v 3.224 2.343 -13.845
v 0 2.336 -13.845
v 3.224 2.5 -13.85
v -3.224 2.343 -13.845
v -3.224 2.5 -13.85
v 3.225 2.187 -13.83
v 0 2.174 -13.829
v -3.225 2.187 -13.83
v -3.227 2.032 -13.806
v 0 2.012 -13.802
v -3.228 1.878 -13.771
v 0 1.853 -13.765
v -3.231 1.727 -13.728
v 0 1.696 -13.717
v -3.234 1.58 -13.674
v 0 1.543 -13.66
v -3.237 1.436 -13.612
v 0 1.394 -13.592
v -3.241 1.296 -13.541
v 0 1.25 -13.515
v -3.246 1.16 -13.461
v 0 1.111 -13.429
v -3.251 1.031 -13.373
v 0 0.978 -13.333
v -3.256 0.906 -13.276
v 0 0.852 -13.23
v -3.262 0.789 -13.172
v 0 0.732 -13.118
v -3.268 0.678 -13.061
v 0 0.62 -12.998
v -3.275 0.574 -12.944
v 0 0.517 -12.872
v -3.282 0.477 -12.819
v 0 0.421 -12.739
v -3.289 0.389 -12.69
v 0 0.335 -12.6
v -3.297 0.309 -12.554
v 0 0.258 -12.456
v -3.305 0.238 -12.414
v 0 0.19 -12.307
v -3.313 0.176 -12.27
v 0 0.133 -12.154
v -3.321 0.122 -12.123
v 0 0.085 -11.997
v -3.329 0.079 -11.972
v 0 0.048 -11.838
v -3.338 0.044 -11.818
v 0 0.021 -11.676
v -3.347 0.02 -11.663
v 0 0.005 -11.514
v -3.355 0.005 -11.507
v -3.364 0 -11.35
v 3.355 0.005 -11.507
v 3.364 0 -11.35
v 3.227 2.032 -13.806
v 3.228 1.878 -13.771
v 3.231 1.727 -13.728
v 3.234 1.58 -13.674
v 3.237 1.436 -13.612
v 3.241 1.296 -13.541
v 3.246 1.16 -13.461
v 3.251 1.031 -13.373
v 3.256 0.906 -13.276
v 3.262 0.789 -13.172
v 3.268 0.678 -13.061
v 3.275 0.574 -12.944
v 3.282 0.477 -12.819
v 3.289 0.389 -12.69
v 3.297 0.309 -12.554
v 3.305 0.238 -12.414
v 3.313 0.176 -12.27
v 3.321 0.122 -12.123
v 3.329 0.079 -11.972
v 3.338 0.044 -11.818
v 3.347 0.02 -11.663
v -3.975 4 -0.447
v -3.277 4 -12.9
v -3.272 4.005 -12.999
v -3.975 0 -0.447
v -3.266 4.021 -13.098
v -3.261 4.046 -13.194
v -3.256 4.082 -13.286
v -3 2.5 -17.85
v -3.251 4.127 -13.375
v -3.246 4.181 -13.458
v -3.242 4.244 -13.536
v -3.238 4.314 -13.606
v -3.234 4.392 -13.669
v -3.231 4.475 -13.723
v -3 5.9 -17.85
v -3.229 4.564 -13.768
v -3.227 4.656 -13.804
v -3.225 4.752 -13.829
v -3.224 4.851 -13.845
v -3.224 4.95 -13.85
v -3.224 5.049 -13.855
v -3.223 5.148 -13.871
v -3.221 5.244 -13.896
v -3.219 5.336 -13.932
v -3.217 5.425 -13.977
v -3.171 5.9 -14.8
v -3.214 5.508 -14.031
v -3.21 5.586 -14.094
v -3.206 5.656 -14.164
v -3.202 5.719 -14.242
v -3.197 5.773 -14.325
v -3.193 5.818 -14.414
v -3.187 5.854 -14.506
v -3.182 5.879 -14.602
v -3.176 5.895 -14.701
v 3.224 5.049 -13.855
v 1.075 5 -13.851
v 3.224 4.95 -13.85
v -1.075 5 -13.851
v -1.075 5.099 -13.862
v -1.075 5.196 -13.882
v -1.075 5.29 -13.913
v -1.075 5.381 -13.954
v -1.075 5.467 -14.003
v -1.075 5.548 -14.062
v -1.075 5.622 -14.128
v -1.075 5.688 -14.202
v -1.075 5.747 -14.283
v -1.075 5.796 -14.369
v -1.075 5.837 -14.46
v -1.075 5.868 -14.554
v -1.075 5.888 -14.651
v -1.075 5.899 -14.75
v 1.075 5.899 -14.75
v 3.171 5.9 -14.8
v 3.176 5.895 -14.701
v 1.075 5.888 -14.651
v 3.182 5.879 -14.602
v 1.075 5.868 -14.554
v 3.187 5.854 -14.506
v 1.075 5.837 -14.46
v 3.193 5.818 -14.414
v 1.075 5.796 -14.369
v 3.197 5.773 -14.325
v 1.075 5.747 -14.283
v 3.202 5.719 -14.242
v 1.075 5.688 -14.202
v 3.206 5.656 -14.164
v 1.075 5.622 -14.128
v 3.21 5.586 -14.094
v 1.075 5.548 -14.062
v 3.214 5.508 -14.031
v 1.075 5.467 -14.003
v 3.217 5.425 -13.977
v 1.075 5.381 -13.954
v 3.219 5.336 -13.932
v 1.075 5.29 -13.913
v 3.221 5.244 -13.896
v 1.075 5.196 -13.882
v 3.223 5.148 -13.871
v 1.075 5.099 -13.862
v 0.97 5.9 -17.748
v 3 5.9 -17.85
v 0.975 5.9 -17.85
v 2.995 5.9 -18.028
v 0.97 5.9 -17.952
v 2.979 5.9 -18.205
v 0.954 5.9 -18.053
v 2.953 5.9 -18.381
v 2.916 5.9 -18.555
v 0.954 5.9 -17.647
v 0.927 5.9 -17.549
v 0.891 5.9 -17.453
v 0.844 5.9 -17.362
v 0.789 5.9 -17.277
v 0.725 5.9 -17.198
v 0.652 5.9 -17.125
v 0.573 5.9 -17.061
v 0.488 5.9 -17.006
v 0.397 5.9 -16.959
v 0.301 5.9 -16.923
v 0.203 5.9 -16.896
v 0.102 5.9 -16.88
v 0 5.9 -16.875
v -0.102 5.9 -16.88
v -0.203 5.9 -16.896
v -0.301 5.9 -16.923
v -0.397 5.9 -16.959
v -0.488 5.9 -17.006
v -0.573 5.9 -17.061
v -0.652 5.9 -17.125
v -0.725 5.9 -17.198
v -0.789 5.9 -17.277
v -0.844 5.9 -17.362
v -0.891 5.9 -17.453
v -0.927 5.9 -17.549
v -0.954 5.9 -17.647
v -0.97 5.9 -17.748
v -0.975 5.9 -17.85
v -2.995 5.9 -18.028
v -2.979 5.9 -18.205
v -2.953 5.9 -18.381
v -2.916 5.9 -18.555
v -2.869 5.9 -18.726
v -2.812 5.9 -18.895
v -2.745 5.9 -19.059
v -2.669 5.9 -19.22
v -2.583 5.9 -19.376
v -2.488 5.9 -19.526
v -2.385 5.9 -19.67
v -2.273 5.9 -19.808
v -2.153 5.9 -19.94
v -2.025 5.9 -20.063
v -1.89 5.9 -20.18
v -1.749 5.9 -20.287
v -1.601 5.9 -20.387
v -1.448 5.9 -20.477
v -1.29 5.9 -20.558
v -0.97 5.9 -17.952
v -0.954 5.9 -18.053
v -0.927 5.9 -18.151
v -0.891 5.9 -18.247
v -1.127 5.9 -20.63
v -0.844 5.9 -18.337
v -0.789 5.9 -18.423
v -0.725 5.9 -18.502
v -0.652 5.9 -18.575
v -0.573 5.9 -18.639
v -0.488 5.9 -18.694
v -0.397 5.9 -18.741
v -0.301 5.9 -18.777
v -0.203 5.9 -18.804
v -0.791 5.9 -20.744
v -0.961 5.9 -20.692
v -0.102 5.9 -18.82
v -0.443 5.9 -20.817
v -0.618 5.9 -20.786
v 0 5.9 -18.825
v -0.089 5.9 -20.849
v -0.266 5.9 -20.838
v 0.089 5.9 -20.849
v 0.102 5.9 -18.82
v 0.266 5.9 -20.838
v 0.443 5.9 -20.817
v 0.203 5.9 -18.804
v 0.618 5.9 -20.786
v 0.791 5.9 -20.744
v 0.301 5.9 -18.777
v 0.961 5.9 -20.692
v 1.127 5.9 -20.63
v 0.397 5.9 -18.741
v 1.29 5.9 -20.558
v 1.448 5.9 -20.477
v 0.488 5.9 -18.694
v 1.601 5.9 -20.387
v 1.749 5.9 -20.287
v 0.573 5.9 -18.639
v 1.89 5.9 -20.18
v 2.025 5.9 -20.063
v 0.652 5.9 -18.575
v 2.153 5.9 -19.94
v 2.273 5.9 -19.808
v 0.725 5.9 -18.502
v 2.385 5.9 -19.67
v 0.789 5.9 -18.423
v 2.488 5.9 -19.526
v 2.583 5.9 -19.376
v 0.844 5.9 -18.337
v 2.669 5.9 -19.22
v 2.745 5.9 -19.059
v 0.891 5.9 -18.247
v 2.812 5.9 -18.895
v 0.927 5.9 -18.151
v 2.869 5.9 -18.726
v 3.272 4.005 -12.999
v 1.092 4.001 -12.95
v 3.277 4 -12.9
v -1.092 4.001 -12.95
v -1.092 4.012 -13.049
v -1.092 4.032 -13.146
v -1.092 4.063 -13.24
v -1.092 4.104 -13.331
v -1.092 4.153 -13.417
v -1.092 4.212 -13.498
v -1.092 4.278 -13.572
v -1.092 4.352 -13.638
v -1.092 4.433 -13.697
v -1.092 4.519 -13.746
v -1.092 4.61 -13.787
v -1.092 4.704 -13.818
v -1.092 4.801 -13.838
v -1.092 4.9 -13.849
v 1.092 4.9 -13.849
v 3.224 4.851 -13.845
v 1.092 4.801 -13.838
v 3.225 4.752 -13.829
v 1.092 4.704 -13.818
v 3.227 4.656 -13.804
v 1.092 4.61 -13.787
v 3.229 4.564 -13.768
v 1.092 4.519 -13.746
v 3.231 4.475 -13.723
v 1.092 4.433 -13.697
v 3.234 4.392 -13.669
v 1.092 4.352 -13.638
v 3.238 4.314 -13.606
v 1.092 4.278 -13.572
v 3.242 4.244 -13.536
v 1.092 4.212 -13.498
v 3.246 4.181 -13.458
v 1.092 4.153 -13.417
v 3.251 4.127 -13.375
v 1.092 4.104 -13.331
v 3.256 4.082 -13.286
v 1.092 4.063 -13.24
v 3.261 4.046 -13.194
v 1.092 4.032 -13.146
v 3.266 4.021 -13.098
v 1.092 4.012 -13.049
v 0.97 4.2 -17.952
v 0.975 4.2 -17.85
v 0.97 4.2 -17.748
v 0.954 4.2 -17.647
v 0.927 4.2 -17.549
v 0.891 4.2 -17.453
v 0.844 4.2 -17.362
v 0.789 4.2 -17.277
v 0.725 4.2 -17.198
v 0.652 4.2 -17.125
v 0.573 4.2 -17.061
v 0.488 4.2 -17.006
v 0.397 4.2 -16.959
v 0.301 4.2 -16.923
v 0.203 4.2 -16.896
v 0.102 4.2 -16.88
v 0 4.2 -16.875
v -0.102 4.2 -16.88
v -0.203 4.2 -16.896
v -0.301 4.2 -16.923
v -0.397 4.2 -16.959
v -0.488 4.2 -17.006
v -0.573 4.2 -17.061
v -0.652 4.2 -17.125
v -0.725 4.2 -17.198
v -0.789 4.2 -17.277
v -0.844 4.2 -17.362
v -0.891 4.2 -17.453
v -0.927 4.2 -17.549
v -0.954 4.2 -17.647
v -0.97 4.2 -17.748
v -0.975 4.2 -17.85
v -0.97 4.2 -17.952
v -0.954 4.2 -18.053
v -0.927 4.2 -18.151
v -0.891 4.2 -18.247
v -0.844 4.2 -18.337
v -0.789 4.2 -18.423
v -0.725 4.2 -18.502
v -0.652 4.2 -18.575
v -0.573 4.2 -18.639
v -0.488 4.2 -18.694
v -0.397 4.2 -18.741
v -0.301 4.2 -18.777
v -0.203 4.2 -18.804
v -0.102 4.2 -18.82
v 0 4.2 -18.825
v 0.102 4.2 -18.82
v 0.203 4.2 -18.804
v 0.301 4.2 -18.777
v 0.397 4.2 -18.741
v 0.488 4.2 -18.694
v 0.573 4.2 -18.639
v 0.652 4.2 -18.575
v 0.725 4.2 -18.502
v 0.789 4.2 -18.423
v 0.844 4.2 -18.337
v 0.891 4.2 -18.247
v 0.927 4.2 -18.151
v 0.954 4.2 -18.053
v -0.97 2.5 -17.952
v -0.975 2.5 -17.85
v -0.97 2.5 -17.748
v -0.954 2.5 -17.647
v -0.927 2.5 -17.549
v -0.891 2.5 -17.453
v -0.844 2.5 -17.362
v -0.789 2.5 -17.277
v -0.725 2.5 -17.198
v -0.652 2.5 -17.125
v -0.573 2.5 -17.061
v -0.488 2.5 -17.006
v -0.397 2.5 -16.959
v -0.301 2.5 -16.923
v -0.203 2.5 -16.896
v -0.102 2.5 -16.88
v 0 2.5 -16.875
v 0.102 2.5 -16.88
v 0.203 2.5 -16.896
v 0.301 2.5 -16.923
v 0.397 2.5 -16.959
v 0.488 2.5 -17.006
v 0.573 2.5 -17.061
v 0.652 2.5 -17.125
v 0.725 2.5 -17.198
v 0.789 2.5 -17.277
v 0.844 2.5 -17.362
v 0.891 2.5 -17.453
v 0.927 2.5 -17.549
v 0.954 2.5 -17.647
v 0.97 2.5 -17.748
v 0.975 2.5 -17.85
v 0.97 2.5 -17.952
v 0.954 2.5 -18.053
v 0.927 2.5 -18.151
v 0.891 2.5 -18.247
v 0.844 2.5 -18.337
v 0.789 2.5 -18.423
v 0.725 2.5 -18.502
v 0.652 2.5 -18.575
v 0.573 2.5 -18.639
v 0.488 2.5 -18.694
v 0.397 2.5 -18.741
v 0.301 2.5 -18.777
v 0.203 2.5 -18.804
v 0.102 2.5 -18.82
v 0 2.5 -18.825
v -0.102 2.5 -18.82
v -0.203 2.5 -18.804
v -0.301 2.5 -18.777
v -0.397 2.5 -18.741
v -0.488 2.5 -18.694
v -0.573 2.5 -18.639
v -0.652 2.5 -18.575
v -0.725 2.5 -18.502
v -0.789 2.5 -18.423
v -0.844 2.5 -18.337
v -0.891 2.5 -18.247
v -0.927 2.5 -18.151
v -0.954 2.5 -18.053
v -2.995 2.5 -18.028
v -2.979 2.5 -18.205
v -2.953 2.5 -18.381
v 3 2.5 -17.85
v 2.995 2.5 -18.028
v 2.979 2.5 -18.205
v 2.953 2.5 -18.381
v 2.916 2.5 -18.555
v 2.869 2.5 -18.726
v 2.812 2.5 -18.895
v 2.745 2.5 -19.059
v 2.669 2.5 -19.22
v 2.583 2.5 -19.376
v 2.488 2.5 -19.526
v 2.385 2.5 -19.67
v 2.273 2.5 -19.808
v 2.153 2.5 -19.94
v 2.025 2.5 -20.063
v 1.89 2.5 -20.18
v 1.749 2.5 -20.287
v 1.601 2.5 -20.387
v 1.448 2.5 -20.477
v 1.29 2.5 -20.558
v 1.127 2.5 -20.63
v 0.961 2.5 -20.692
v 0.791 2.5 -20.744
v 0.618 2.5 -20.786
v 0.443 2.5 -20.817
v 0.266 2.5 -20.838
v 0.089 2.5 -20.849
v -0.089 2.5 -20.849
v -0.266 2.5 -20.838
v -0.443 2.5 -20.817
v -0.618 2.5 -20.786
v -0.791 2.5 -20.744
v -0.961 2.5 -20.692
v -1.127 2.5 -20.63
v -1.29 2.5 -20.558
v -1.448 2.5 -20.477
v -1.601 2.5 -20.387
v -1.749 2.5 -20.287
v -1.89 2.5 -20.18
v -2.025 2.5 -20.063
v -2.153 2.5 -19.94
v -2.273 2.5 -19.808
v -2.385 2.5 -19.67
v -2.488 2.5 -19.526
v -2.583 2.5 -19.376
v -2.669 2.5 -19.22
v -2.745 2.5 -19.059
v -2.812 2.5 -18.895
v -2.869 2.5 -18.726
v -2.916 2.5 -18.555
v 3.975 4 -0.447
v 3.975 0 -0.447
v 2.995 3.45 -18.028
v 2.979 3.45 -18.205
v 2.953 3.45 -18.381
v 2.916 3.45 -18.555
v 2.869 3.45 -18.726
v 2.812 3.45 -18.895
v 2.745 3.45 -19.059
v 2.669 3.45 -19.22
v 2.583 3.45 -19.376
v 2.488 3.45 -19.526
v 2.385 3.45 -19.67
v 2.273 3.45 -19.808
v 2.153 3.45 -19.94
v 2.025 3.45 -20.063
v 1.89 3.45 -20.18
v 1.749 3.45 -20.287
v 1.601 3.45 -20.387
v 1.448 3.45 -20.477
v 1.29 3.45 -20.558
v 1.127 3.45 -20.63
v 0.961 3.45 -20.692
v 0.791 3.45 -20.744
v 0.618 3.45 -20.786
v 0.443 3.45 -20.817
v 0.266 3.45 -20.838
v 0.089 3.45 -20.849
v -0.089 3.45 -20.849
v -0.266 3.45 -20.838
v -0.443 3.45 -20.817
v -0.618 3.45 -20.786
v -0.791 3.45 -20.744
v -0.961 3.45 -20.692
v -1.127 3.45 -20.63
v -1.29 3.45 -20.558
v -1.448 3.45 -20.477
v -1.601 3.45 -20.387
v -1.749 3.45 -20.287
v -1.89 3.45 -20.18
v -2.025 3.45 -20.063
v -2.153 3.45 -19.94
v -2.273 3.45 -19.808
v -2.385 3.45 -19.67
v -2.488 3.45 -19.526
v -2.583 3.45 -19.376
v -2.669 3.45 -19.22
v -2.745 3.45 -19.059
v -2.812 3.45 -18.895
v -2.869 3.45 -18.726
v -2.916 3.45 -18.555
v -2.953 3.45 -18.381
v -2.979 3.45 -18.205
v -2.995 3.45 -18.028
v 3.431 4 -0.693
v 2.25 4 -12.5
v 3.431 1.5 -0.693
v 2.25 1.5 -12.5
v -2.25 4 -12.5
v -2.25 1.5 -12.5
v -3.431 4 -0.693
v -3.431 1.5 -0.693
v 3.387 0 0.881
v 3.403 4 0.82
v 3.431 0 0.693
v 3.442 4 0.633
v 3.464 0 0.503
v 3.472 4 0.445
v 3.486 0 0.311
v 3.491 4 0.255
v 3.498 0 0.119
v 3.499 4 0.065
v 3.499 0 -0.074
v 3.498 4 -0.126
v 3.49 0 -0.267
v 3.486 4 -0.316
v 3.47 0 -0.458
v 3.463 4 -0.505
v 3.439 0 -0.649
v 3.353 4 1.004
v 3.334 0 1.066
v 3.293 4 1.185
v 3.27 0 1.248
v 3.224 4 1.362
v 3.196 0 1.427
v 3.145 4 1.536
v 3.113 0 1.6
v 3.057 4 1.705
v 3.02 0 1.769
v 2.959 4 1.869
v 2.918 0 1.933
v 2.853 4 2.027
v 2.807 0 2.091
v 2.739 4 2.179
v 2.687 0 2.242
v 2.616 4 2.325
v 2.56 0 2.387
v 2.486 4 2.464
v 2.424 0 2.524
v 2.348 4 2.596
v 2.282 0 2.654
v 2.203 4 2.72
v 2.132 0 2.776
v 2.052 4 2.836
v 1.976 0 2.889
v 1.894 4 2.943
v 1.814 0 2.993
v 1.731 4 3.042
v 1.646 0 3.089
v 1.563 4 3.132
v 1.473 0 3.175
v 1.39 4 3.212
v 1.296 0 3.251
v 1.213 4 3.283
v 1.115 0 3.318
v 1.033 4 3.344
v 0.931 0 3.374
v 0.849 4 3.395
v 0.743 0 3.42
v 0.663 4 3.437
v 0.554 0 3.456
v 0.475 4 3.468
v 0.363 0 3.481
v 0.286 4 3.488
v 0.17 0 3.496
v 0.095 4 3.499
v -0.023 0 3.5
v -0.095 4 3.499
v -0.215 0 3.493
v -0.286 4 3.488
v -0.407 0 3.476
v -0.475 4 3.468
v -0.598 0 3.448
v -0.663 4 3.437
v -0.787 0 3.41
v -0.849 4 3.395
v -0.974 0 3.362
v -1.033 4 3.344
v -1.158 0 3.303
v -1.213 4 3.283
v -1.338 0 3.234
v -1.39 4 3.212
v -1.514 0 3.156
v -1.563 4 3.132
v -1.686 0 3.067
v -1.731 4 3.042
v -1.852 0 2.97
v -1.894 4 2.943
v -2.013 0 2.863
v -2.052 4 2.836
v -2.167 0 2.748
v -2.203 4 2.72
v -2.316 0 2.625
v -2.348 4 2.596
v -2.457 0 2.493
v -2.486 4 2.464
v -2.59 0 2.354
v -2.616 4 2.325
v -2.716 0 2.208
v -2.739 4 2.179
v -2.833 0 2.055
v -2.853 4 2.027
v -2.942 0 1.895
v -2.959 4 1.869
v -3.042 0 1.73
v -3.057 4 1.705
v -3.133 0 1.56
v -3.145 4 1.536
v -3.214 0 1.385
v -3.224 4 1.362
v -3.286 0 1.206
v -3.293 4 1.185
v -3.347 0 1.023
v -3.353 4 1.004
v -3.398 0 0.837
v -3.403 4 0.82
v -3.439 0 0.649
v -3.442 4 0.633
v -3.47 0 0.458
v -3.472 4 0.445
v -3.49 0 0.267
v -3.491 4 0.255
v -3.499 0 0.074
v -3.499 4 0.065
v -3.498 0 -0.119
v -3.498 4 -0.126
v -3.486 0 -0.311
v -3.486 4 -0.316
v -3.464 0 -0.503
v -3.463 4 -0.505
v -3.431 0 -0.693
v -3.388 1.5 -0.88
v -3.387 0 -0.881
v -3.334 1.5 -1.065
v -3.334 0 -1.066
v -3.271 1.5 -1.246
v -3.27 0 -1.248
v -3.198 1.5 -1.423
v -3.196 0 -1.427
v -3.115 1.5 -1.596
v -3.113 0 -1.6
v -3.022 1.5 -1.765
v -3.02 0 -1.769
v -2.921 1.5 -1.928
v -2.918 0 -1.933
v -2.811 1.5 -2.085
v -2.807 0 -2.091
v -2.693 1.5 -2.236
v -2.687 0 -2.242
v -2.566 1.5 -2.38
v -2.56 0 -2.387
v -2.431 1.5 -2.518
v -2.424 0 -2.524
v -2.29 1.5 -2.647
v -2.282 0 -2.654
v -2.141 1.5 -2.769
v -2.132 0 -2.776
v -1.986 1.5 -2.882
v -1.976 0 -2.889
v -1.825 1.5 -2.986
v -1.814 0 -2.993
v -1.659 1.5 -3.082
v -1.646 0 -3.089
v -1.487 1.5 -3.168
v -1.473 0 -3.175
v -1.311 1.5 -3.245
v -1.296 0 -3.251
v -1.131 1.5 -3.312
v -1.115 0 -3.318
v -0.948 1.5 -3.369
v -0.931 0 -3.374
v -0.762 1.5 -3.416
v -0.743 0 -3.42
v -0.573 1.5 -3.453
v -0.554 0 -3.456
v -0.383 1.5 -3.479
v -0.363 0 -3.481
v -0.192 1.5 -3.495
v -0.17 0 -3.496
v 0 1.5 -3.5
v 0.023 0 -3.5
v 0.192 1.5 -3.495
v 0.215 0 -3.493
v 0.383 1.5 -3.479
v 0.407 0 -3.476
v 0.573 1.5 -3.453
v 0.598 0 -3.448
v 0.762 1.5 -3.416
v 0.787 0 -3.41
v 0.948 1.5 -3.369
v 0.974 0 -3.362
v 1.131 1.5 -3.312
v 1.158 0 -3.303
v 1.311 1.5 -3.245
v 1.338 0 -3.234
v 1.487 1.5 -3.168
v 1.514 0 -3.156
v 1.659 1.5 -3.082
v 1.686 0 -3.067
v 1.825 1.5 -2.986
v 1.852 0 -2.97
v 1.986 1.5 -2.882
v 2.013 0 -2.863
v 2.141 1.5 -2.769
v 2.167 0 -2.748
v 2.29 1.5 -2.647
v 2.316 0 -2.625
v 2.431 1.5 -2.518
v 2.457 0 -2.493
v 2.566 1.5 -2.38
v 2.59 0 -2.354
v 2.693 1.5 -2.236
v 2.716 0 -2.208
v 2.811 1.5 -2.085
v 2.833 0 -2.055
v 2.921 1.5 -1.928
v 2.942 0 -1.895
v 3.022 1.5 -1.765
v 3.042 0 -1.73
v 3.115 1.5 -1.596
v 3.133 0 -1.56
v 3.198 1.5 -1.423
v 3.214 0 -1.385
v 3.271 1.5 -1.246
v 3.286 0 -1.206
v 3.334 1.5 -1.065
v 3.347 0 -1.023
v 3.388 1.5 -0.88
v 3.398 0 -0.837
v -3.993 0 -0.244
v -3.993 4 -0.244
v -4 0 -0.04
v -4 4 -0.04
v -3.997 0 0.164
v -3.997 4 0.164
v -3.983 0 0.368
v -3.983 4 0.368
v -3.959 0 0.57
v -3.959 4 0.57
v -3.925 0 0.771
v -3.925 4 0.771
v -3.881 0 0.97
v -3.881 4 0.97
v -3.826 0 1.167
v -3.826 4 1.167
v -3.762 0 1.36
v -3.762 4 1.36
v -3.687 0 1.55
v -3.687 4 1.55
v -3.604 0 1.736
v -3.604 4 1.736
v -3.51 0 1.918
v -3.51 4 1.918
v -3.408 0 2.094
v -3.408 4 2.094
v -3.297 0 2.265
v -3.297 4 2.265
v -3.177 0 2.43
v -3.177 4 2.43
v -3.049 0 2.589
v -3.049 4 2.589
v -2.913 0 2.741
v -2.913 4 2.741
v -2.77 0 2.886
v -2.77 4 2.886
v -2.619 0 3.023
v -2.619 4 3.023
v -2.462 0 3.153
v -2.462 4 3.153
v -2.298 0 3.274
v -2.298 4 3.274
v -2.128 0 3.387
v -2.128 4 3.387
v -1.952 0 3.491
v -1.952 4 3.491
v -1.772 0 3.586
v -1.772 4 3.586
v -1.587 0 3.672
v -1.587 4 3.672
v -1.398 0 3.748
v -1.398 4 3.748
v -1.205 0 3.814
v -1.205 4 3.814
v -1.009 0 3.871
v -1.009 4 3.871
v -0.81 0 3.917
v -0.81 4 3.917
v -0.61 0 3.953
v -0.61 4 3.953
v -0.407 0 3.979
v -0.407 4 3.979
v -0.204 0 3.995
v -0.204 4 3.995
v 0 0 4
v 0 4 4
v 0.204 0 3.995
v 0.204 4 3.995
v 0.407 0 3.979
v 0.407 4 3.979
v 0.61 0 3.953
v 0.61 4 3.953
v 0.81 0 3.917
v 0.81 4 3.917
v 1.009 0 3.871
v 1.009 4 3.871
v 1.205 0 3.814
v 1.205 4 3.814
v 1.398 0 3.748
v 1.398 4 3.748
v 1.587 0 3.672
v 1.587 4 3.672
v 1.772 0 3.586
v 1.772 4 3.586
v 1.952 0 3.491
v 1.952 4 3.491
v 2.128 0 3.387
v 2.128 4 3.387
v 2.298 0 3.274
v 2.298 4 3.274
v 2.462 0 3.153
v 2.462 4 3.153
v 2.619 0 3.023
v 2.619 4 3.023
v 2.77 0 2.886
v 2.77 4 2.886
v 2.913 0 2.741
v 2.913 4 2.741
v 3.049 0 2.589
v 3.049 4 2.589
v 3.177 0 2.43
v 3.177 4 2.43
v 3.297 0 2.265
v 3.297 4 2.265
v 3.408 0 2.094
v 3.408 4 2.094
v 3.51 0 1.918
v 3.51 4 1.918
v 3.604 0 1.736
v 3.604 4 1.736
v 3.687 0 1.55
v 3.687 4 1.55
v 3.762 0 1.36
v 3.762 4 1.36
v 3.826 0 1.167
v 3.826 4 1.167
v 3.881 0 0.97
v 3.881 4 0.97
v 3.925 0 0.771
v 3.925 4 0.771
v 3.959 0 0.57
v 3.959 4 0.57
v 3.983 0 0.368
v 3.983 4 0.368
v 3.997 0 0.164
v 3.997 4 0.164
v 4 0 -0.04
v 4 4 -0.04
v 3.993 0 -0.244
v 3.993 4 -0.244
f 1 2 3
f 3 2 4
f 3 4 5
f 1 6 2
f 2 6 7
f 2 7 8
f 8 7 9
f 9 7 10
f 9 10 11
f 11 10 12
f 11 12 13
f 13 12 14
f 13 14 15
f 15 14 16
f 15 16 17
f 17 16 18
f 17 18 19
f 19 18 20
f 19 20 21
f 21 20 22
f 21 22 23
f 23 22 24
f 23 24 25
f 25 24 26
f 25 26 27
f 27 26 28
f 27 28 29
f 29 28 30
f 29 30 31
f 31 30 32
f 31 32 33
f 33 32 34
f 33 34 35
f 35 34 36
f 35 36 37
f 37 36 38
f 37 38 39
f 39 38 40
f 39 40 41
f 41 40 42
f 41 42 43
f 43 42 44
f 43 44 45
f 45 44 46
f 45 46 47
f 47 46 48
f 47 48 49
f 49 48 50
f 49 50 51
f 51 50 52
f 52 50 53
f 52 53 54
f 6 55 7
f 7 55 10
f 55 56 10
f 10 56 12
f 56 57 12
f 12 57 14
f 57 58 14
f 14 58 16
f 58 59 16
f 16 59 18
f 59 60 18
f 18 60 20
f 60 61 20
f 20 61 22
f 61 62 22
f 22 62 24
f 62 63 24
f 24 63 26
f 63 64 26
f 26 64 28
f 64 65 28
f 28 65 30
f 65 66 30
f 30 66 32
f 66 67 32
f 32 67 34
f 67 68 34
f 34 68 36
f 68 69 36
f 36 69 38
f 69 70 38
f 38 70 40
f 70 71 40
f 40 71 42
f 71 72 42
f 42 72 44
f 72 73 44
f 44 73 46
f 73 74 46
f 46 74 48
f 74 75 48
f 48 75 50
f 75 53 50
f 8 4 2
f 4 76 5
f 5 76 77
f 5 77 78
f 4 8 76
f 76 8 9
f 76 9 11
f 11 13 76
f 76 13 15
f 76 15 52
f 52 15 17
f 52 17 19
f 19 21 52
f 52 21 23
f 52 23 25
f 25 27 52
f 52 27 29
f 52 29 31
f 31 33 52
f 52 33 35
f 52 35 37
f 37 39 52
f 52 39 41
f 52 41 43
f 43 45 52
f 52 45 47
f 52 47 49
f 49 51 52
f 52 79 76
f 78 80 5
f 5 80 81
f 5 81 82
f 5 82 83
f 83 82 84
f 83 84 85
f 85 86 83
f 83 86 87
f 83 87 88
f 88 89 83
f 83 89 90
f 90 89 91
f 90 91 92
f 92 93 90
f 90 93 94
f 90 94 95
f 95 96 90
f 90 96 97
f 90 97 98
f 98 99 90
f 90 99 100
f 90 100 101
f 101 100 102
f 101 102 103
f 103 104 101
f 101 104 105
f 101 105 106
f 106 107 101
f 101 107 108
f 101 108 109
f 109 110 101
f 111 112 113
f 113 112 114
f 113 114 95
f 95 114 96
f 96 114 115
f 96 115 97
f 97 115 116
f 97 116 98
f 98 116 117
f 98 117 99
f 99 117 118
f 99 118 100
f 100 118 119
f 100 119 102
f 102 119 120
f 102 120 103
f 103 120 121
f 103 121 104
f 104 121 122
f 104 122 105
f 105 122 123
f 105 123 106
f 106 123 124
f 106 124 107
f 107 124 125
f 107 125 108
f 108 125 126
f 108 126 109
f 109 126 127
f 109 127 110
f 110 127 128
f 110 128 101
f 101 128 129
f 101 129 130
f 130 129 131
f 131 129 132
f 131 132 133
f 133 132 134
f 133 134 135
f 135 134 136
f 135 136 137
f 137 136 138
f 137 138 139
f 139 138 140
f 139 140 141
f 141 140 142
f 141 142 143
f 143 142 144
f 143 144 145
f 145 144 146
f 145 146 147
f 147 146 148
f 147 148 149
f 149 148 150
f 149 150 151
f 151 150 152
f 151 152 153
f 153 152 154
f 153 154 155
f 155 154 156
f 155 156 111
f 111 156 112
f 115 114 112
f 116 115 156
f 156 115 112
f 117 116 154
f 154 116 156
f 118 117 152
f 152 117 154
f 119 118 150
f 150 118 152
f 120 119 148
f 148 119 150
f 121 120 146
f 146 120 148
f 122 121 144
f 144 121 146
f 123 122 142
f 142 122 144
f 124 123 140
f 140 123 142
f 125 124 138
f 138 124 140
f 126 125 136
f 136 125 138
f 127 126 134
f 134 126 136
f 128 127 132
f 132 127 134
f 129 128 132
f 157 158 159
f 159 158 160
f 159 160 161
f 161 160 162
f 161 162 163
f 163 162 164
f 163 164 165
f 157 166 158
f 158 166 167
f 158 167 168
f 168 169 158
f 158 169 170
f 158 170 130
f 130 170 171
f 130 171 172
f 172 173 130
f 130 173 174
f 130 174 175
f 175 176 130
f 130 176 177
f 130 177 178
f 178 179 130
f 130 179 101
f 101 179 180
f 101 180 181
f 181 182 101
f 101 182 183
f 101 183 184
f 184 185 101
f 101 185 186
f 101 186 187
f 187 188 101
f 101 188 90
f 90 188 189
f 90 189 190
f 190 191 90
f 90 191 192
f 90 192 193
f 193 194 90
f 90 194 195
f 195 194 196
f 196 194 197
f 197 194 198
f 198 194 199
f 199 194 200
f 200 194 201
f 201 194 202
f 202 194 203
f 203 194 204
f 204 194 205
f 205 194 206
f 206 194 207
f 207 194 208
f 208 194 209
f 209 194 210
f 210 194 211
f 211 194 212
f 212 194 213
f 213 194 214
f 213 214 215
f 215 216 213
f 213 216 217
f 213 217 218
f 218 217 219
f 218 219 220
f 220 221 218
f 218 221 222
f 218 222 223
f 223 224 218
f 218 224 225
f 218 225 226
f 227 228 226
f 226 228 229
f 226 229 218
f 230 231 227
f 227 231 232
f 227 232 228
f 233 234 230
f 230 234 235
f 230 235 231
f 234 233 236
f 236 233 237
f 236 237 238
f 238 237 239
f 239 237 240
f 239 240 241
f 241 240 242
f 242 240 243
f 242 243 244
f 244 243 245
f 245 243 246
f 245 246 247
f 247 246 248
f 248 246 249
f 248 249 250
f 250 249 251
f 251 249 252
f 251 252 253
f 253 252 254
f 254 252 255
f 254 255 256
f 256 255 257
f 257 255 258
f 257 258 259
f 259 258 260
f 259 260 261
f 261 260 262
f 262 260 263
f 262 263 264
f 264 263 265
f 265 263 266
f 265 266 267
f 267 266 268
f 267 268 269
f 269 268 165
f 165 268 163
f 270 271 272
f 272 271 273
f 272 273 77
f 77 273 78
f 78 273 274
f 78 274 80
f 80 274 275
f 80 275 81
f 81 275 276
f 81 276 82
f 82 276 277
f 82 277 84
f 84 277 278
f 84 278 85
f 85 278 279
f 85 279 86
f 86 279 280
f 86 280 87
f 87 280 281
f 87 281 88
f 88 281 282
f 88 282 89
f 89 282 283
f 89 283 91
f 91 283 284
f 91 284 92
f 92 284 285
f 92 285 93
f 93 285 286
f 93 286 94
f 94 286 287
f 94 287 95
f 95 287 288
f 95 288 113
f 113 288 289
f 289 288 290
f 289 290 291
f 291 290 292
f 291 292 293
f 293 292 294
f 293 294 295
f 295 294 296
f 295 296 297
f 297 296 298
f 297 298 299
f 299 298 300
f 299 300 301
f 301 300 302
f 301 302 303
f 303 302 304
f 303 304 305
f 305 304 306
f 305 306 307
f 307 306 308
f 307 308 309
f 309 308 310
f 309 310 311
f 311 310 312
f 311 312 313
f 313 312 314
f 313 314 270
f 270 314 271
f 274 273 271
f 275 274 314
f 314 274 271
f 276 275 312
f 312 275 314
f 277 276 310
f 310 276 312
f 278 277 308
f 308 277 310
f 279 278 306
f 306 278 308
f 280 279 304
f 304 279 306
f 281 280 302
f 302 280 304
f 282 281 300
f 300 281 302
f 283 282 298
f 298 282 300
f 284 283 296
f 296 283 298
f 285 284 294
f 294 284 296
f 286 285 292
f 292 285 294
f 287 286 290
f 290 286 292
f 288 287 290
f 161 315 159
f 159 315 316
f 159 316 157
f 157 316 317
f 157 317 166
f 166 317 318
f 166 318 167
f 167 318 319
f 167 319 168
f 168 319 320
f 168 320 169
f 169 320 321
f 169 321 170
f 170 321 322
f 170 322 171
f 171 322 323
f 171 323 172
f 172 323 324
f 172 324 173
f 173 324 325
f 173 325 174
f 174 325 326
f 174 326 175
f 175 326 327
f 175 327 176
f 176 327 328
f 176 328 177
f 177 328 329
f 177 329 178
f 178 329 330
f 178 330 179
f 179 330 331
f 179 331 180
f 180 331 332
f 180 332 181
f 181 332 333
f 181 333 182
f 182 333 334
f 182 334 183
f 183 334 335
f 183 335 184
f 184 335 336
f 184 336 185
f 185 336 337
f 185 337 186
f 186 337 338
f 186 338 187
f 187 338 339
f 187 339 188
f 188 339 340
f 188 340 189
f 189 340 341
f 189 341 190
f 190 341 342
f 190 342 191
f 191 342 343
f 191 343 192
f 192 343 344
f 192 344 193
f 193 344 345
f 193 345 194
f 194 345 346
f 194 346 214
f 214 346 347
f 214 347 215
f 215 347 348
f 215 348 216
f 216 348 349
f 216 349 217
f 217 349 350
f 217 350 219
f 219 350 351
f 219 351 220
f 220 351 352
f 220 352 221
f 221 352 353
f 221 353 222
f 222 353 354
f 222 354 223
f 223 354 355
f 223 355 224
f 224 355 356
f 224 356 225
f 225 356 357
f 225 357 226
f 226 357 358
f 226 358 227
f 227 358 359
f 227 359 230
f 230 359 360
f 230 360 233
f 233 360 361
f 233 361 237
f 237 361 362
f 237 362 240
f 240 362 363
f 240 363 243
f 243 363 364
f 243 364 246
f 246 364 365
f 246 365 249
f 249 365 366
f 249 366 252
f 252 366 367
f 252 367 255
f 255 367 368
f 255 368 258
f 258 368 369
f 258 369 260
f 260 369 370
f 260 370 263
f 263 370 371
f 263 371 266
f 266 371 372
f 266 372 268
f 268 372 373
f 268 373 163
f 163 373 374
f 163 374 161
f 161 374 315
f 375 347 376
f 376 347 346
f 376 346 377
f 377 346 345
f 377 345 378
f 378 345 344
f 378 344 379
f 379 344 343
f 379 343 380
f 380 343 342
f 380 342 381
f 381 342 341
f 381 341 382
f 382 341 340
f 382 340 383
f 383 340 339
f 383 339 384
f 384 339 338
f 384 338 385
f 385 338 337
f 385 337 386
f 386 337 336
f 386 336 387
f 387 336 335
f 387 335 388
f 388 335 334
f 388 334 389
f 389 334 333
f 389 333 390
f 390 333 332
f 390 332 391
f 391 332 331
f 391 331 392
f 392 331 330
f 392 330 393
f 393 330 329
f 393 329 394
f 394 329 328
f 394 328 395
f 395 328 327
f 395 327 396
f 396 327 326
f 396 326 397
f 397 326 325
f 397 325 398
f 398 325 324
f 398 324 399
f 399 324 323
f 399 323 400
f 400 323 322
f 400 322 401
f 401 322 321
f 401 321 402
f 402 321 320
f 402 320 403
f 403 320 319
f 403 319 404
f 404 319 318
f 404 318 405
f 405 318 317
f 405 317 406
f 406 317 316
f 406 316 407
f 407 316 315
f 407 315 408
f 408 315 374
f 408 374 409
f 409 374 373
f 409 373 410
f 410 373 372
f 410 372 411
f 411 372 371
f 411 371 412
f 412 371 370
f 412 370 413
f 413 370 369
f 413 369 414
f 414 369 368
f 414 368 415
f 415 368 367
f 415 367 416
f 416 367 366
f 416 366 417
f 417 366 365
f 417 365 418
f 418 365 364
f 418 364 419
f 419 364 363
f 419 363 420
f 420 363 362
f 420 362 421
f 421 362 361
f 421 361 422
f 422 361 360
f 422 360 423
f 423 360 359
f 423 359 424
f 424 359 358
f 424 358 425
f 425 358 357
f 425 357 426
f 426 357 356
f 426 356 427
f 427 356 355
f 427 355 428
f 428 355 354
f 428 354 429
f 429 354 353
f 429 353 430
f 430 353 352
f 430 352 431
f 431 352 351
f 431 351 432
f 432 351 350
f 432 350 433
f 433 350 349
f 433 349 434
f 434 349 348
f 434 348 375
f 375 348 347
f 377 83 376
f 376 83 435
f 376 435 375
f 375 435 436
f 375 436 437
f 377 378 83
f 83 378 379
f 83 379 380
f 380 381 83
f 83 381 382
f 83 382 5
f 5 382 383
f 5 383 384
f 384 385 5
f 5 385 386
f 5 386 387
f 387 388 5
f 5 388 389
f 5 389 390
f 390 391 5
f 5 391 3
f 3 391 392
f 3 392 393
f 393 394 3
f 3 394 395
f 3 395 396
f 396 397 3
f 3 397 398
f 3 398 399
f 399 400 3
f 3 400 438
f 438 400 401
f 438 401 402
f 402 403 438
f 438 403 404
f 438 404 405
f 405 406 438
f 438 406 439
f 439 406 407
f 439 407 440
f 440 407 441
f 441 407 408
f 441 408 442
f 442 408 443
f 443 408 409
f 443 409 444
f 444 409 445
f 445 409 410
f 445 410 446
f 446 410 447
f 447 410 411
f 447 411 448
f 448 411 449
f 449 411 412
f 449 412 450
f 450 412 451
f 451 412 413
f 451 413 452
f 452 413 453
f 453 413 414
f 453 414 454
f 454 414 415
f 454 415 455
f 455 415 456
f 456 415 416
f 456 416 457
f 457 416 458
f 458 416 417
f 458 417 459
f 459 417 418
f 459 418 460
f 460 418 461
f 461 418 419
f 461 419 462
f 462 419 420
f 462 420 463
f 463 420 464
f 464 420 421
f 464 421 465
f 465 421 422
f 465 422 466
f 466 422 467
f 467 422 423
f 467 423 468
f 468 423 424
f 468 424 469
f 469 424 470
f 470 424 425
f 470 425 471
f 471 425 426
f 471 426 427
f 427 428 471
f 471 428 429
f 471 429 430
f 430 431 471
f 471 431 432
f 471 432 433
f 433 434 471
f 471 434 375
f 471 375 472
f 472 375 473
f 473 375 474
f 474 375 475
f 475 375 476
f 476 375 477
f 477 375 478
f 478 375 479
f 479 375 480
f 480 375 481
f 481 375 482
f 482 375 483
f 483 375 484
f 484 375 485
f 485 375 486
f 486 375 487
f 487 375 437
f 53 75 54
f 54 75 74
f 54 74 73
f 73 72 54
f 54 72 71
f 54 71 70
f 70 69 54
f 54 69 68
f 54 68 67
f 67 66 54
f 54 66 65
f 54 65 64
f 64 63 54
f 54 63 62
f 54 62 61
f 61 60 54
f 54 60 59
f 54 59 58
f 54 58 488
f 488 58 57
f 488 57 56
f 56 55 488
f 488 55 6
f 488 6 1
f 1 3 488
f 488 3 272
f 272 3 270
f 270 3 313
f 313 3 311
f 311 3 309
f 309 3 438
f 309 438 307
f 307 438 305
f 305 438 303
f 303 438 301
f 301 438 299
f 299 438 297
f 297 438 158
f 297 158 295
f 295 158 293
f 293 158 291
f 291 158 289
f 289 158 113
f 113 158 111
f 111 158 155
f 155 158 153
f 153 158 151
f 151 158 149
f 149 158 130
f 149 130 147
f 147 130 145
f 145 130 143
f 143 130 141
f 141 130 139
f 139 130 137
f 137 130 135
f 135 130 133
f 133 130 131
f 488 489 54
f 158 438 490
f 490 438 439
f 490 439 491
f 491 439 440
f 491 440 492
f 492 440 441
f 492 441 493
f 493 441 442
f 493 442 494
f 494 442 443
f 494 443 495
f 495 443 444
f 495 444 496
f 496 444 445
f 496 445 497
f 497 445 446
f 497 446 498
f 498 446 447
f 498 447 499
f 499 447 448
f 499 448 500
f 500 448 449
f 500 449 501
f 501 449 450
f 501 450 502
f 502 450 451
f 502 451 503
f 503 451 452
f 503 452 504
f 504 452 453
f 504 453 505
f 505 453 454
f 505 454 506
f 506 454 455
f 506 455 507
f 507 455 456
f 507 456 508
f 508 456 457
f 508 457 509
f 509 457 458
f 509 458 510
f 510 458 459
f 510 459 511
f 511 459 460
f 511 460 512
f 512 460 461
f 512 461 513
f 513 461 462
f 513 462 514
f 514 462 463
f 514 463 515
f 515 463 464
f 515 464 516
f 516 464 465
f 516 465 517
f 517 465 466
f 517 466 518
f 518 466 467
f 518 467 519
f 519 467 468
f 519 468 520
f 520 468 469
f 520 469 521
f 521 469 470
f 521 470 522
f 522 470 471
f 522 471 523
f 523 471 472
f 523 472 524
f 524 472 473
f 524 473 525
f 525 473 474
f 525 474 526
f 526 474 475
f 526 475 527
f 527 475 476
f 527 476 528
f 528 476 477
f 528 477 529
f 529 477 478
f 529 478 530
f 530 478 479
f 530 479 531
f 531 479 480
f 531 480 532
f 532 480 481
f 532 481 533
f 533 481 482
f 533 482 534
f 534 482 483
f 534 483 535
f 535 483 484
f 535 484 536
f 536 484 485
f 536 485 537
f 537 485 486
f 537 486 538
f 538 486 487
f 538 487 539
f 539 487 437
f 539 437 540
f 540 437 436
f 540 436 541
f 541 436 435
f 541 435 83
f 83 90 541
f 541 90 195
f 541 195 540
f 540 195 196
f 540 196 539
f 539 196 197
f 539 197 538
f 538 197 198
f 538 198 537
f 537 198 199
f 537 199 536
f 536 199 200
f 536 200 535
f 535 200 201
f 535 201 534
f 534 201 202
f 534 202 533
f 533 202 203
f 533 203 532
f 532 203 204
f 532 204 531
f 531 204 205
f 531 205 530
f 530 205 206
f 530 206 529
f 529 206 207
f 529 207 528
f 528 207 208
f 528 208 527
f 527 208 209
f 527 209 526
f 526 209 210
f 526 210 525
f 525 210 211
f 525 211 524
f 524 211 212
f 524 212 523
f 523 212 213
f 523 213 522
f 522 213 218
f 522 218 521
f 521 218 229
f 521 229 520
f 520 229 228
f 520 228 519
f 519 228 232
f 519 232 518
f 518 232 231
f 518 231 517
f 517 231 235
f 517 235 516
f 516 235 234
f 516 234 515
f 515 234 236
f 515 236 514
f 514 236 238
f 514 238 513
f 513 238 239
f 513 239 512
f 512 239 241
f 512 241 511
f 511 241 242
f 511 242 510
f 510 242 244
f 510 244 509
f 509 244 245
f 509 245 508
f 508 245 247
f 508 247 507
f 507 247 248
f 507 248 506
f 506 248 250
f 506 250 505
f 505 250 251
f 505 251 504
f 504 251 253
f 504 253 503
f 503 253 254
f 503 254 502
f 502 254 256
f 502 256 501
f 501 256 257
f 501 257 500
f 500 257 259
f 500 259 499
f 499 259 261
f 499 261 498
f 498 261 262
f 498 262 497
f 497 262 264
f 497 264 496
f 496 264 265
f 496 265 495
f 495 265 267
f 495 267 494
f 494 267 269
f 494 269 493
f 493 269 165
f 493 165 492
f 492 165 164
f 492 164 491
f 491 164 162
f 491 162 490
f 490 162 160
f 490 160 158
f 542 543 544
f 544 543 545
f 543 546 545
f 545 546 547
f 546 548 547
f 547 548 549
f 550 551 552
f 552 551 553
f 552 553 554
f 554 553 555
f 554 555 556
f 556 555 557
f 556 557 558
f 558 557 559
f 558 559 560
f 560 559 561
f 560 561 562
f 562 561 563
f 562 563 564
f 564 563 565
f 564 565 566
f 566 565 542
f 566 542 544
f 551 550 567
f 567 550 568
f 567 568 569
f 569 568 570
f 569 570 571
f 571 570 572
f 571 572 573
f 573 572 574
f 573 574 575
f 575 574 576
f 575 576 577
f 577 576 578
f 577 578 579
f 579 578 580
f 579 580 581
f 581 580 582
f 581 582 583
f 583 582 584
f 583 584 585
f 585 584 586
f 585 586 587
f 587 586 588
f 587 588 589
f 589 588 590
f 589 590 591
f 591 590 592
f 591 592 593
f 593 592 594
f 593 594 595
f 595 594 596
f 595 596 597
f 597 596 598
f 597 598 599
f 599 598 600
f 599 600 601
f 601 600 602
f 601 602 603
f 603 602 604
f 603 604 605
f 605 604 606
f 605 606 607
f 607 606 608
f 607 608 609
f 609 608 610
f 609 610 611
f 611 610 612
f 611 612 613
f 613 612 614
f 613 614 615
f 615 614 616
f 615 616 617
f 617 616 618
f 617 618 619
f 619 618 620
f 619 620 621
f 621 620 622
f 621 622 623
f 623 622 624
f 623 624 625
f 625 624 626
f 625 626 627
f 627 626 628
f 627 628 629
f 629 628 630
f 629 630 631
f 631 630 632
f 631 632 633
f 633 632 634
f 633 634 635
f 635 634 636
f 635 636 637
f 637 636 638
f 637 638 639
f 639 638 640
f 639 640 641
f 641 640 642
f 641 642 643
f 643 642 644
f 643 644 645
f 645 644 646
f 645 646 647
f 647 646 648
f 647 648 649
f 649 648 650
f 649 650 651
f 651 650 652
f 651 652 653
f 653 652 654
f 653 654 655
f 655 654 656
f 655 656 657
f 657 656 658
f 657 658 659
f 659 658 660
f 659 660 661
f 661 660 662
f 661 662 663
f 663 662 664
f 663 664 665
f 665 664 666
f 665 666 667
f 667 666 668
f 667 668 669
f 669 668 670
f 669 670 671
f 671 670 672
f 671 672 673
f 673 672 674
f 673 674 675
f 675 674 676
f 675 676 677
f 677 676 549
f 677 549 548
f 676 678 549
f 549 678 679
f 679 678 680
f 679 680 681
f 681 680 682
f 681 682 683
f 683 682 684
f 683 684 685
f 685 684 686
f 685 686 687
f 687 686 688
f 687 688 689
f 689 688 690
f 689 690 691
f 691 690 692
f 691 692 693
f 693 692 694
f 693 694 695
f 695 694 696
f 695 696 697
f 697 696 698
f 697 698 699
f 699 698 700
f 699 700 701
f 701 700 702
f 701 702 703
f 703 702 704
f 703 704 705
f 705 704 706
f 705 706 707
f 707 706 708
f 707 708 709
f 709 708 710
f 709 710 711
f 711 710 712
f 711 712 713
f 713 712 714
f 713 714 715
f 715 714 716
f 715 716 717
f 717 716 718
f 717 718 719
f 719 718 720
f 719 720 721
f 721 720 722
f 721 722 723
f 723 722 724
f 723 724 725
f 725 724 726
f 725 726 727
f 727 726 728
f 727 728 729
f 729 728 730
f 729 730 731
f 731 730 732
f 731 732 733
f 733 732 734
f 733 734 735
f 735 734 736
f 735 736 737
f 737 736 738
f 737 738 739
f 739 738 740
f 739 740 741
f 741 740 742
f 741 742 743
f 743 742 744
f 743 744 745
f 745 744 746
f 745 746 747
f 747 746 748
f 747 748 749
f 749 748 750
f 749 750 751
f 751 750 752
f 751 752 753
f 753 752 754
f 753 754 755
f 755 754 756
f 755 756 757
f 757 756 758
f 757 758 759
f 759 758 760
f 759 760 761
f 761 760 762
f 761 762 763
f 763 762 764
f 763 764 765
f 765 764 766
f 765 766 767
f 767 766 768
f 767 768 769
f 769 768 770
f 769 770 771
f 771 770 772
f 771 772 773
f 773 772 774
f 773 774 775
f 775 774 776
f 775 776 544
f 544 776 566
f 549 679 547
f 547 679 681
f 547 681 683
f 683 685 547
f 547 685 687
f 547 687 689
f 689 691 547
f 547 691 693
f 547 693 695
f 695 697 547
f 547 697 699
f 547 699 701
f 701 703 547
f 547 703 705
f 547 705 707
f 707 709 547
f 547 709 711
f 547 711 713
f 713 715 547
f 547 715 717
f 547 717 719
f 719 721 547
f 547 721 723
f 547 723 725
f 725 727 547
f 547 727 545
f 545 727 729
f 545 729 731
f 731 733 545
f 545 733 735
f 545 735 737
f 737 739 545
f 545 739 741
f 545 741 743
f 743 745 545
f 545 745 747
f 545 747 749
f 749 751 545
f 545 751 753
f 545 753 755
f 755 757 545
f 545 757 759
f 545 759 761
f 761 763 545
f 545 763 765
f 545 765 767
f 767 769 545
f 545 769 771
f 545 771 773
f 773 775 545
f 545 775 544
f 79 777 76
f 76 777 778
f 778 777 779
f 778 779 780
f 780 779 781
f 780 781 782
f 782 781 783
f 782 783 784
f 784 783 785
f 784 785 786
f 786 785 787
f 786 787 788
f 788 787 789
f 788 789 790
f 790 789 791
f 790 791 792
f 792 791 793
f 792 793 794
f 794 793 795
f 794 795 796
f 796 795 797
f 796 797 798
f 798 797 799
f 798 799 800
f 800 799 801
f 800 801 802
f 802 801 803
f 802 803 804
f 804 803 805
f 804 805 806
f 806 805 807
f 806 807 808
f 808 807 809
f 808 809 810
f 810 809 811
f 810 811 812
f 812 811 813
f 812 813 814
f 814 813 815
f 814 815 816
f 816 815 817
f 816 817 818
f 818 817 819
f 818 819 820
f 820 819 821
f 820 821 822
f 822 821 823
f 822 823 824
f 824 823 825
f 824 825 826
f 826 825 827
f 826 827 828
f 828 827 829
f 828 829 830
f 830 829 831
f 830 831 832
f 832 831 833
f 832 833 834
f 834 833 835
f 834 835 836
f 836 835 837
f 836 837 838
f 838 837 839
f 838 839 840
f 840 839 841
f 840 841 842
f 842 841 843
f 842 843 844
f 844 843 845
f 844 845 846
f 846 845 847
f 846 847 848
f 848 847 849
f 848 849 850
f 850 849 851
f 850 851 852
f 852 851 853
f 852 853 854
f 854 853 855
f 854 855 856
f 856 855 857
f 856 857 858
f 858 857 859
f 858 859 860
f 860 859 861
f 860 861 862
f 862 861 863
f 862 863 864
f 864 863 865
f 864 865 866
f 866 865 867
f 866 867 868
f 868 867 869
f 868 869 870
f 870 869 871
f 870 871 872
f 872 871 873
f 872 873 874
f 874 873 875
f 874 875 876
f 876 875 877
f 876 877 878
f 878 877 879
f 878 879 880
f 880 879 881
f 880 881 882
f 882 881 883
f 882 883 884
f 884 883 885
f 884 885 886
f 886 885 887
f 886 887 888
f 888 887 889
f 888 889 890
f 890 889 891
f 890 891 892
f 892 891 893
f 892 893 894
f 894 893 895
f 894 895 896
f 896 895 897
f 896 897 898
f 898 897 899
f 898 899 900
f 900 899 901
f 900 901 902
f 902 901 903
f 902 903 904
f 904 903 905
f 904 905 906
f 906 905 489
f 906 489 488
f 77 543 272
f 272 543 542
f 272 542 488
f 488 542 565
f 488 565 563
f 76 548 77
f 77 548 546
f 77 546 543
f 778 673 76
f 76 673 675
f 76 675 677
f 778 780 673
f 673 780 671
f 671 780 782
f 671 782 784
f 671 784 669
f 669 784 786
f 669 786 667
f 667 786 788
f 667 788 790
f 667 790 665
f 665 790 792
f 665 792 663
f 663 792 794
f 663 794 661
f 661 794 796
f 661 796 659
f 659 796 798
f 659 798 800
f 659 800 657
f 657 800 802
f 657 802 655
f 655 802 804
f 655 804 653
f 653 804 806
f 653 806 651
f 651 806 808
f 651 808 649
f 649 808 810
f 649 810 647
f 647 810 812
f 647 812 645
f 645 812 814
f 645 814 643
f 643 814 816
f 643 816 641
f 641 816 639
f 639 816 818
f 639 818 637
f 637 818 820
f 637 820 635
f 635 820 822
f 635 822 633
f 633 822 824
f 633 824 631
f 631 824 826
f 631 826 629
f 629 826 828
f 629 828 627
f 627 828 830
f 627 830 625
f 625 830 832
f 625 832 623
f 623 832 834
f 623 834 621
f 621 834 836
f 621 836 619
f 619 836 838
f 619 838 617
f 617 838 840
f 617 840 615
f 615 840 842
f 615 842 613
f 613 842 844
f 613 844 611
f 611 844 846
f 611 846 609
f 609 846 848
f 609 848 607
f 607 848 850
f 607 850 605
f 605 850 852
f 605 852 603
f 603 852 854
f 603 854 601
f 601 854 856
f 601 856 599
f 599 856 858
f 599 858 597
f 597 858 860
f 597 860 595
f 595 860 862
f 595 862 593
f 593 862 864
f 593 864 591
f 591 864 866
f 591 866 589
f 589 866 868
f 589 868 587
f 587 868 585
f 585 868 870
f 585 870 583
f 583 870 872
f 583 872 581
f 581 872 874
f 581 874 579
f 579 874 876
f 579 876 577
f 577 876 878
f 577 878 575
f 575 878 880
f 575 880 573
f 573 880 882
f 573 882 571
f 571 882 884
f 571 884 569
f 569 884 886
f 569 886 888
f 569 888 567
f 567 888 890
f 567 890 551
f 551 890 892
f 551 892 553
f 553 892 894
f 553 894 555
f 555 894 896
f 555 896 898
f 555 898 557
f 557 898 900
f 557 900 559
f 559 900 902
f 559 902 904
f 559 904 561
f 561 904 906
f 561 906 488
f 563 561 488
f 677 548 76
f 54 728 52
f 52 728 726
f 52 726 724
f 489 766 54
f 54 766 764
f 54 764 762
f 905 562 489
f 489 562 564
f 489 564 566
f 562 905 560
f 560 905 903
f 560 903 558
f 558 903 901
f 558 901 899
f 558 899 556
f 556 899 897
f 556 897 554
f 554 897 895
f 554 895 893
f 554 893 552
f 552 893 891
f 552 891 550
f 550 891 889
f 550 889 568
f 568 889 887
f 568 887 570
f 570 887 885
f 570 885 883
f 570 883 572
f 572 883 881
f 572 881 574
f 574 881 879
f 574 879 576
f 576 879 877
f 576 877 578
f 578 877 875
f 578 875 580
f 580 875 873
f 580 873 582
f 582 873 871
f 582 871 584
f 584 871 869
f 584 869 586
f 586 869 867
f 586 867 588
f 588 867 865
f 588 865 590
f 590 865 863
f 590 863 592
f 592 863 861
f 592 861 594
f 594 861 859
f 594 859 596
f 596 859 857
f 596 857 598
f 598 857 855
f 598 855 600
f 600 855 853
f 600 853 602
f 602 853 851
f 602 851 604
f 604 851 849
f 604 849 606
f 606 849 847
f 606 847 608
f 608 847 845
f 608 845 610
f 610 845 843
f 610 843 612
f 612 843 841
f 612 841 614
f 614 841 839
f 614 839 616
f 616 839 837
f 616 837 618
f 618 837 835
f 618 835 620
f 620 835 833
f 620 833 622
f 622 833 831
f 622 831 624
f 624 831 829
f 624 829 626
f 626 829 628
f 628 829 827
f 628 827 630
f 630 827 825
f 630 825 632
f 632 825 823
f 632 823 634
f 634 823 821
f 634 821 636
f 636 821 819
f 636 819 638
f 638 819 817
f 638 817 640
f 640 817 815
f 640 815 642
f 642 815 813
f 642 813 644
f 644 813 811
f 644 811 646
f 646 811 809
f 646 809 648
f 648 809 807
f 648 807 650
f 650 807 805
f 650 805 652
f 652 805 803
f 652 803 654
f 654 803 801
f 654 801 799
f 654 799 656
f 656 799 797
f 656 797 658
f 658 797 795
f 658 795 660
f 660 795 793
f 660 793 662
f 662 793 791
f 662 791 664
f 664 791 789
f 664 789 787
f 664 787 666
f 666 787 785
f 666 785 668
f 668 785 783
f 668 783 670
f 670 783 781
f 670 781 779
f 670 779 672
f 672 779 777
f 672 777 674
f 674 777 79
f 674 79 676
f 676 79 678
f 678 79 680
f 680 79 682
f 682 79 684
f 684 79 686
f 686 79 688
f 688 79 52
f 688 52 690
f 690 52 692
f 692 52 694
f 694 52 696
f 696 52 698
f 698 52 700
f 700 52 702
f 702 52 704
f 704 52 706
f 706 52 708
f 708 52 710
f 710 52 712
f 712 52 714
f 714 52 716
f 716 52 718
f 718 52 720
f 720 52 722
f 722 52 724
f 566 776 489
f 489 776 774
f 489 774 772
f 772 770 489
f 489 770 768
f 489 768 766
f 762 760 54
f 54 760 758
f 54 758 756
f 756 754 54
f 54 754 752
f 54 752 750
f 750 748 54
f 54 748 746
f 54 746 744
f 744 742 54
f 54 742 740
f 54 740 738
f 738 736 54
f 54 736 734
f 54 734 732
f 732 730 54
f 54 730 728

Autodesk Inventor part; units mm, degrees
ref_plane "YZ Plane" through (0, 0, 0) normal (1, 0, 0) x (0, 1, 0)
ref_plane "XZ Plane" through (0, 0, 0) normal (0, 1, 0) x (-1, 0, 0)
ref_plane "XY Plane" through (0, 0, 0) normal (0, 0, 1) x (1, 0, 0)
sketch "Эскиз1" plane through (0, 0, 0) normal (0, 1, 0) x (-1, 0, 0)
  circle A0 centre (0, 0) radius 4
  dimension "d0" = 8
extrude "Выдавливание1" add sketch "Эскиз1" along normal blind 4
sketch "Эскиз5" plane through (0, 4, 0) normal (0, 1, 0) x (1, 0, 0)
  circle A0 centre (0, 0) radius 4 projected
  line L0 (-4, 0) -> (4, 0)
  line L1 (4, 0) -> (4, 17.85)
  line L2 (4, 17.85) -> (-4, 17.85)
  line L3 (-4, 17.85) -> (-4, 0)
  circle A1 centre (0, 0) radius 4 projected
  circle A2 centre (0, 17.85) radius 3
  line L4 (4, 0) -> (3, 17.85)
  line L5 (-4, 0) -> (-3, 17.85)
  point P0 (4, 0)
  point P1 (-3.975, 0.4468)
  point P2 (3.975, 0.4468)
  dimension "d27" = 17.85
  dimension "d59" = 6
extrude "Выдавливание4" add sketch "Эскиз5" against normal blind 4 contours L5 A2 L4 A0 | A2 L2 | L2 A2
sketch "Эскиз9" plane through (0, 4, 0) normal (0, -1, 0) x (1, 0, 0)
  circle A0 centre (0, 0) radius 3.5
  line L0 (3.5, 0) -> (-3.5, 0)
  line L1 (3.5, 0) -> (2.25, -12.5)
  line L2 (-3.5, 0) -> (-2.25, -12.5)
  line L3 (2.25, -12.5) -> (-2.25, -12.5)
  point P0 (0, -12.5)
  point P1 (-3.4307, -0.6931)
  point P2 (3.4307, -0.6931)
  dimension "d43" = 7
  dimension "d44" = 4.5
  dimension "d45" = 12.5
extrude "Выдавливание7" cut sketch "Эскиз9" along normal blind 2.5
sketch "Эскиз10" plane through (0, 1.5, 0) normal (0, 1, 0) x (1, 0, 0)
  line L0 (2.25, 12.5) -> (3.4307, 0.6931) projected
  line L1 (-3.4307, 0.6931) -> (-2.25, 12.5) projected
  arc A0 (-3.4307, 0.6931) -> (3.4307, 0.6931) centre (0, 0) ccw projected
  arc A1 (-3.4307, 0.6931) -> (3.4307, 0.6931) centre (0, 0) ccw projected
  circle A2 centre (0, 0) radius 3.5
  line L2 (-2.25, 12.5) -> (2.25, 12.5) projected
  point P0 (3.4307, 0.6931)
extrude "Выдавливание8" cut sketch "Эскиз10" against normal through all contours A0 A2
sketch "Эскиз13" plane through (0, 0, 0) normal (0, -1, 0) x (1, 0, 0)
  arc A0 (-3, -17.85) -> (3, -17.85) centre (0, -17.85) ccw projected
  circle A1 centre (0, -17.85) radius 3
  line L0 (-2.25, -12.5) -> (2.25, -12.5) projected
  line L1 (-2.25, -12.5) -> (2.25, -12.5) projected
  line L2 (3.2241, -13.85) -> (-3.2241, -13.85)
  line L3 (-3.2241, -13.85) -> (-3.2241, -20.85)
  line L4 (-3.2241, -20.85) -> (3.2241, -20.85)
  line L5 (3.2241, -20.85) -> (3.2241, -13.85)
  line L6 (-3.975, -0.4468) -> (-3, -17.85) projected
  line L7 (3, -17.85) -> (3.975, -0.4468) projected
  point P0 (0, 0)
  point P1 (3, -17.85)
  dimension "d71" = 7
extrude "Выдавливание10" cut sketch "Эскиз13" against normal blind 2.5 contours A1 A0 | L6 L2 L7 A1
sketch "Эскиз14" plane through (0, 2.5, -17.85) normal (0, -1, 0) x (-1, 0, 0)
  arc A0 (3, 0) -> (-3, 0) centre (0, 0) ccw projected
  line L0 (-3.2241, -4) -> (-3, 0) projected
  line L1 (3, 0) -> (3.2241, -4) projected
  line L2 (3.2241, -4) -> (-3.2241, -4) projected
  point P0 (0, -17.85)
hole "Отверстие4" at (0, 2.5, -17.85) direction (0, 1, 0) diameter 1.95 depth 4
sketch "Эскиз15" plane through (0, 4, 0) normal (0, 1, 0) x (1, 0, 0)
  circle A0 centre (0, 17.85) radius 0.975 projected
  arc A1 (3, 17.85) -> (-3, 17.85) centre (0, 17.85) ccw projected
  line L0 (3.2241, 13.85) -> (3, 17.85) projected
  line L1 (-3, 17.85) -> (-3.2241, 13.85) projected
  line L2 (-3.2241, 13.85) -> (3.2241, 13.85) projected
  point P0 (0, 0)
extrude "Выдавливание11" add sketch "Эскиз15" along normal blind 1.9
fillet "Сопряжение1" radius 0.95 2 edges at (0, 4, -13.85) (0, 5.9, -13.85)
fillet "Сопряжение2" radius 2.5 1 edges at (0, 0, -13.85)
properties part number "Поворотный рычаг для сервы"
